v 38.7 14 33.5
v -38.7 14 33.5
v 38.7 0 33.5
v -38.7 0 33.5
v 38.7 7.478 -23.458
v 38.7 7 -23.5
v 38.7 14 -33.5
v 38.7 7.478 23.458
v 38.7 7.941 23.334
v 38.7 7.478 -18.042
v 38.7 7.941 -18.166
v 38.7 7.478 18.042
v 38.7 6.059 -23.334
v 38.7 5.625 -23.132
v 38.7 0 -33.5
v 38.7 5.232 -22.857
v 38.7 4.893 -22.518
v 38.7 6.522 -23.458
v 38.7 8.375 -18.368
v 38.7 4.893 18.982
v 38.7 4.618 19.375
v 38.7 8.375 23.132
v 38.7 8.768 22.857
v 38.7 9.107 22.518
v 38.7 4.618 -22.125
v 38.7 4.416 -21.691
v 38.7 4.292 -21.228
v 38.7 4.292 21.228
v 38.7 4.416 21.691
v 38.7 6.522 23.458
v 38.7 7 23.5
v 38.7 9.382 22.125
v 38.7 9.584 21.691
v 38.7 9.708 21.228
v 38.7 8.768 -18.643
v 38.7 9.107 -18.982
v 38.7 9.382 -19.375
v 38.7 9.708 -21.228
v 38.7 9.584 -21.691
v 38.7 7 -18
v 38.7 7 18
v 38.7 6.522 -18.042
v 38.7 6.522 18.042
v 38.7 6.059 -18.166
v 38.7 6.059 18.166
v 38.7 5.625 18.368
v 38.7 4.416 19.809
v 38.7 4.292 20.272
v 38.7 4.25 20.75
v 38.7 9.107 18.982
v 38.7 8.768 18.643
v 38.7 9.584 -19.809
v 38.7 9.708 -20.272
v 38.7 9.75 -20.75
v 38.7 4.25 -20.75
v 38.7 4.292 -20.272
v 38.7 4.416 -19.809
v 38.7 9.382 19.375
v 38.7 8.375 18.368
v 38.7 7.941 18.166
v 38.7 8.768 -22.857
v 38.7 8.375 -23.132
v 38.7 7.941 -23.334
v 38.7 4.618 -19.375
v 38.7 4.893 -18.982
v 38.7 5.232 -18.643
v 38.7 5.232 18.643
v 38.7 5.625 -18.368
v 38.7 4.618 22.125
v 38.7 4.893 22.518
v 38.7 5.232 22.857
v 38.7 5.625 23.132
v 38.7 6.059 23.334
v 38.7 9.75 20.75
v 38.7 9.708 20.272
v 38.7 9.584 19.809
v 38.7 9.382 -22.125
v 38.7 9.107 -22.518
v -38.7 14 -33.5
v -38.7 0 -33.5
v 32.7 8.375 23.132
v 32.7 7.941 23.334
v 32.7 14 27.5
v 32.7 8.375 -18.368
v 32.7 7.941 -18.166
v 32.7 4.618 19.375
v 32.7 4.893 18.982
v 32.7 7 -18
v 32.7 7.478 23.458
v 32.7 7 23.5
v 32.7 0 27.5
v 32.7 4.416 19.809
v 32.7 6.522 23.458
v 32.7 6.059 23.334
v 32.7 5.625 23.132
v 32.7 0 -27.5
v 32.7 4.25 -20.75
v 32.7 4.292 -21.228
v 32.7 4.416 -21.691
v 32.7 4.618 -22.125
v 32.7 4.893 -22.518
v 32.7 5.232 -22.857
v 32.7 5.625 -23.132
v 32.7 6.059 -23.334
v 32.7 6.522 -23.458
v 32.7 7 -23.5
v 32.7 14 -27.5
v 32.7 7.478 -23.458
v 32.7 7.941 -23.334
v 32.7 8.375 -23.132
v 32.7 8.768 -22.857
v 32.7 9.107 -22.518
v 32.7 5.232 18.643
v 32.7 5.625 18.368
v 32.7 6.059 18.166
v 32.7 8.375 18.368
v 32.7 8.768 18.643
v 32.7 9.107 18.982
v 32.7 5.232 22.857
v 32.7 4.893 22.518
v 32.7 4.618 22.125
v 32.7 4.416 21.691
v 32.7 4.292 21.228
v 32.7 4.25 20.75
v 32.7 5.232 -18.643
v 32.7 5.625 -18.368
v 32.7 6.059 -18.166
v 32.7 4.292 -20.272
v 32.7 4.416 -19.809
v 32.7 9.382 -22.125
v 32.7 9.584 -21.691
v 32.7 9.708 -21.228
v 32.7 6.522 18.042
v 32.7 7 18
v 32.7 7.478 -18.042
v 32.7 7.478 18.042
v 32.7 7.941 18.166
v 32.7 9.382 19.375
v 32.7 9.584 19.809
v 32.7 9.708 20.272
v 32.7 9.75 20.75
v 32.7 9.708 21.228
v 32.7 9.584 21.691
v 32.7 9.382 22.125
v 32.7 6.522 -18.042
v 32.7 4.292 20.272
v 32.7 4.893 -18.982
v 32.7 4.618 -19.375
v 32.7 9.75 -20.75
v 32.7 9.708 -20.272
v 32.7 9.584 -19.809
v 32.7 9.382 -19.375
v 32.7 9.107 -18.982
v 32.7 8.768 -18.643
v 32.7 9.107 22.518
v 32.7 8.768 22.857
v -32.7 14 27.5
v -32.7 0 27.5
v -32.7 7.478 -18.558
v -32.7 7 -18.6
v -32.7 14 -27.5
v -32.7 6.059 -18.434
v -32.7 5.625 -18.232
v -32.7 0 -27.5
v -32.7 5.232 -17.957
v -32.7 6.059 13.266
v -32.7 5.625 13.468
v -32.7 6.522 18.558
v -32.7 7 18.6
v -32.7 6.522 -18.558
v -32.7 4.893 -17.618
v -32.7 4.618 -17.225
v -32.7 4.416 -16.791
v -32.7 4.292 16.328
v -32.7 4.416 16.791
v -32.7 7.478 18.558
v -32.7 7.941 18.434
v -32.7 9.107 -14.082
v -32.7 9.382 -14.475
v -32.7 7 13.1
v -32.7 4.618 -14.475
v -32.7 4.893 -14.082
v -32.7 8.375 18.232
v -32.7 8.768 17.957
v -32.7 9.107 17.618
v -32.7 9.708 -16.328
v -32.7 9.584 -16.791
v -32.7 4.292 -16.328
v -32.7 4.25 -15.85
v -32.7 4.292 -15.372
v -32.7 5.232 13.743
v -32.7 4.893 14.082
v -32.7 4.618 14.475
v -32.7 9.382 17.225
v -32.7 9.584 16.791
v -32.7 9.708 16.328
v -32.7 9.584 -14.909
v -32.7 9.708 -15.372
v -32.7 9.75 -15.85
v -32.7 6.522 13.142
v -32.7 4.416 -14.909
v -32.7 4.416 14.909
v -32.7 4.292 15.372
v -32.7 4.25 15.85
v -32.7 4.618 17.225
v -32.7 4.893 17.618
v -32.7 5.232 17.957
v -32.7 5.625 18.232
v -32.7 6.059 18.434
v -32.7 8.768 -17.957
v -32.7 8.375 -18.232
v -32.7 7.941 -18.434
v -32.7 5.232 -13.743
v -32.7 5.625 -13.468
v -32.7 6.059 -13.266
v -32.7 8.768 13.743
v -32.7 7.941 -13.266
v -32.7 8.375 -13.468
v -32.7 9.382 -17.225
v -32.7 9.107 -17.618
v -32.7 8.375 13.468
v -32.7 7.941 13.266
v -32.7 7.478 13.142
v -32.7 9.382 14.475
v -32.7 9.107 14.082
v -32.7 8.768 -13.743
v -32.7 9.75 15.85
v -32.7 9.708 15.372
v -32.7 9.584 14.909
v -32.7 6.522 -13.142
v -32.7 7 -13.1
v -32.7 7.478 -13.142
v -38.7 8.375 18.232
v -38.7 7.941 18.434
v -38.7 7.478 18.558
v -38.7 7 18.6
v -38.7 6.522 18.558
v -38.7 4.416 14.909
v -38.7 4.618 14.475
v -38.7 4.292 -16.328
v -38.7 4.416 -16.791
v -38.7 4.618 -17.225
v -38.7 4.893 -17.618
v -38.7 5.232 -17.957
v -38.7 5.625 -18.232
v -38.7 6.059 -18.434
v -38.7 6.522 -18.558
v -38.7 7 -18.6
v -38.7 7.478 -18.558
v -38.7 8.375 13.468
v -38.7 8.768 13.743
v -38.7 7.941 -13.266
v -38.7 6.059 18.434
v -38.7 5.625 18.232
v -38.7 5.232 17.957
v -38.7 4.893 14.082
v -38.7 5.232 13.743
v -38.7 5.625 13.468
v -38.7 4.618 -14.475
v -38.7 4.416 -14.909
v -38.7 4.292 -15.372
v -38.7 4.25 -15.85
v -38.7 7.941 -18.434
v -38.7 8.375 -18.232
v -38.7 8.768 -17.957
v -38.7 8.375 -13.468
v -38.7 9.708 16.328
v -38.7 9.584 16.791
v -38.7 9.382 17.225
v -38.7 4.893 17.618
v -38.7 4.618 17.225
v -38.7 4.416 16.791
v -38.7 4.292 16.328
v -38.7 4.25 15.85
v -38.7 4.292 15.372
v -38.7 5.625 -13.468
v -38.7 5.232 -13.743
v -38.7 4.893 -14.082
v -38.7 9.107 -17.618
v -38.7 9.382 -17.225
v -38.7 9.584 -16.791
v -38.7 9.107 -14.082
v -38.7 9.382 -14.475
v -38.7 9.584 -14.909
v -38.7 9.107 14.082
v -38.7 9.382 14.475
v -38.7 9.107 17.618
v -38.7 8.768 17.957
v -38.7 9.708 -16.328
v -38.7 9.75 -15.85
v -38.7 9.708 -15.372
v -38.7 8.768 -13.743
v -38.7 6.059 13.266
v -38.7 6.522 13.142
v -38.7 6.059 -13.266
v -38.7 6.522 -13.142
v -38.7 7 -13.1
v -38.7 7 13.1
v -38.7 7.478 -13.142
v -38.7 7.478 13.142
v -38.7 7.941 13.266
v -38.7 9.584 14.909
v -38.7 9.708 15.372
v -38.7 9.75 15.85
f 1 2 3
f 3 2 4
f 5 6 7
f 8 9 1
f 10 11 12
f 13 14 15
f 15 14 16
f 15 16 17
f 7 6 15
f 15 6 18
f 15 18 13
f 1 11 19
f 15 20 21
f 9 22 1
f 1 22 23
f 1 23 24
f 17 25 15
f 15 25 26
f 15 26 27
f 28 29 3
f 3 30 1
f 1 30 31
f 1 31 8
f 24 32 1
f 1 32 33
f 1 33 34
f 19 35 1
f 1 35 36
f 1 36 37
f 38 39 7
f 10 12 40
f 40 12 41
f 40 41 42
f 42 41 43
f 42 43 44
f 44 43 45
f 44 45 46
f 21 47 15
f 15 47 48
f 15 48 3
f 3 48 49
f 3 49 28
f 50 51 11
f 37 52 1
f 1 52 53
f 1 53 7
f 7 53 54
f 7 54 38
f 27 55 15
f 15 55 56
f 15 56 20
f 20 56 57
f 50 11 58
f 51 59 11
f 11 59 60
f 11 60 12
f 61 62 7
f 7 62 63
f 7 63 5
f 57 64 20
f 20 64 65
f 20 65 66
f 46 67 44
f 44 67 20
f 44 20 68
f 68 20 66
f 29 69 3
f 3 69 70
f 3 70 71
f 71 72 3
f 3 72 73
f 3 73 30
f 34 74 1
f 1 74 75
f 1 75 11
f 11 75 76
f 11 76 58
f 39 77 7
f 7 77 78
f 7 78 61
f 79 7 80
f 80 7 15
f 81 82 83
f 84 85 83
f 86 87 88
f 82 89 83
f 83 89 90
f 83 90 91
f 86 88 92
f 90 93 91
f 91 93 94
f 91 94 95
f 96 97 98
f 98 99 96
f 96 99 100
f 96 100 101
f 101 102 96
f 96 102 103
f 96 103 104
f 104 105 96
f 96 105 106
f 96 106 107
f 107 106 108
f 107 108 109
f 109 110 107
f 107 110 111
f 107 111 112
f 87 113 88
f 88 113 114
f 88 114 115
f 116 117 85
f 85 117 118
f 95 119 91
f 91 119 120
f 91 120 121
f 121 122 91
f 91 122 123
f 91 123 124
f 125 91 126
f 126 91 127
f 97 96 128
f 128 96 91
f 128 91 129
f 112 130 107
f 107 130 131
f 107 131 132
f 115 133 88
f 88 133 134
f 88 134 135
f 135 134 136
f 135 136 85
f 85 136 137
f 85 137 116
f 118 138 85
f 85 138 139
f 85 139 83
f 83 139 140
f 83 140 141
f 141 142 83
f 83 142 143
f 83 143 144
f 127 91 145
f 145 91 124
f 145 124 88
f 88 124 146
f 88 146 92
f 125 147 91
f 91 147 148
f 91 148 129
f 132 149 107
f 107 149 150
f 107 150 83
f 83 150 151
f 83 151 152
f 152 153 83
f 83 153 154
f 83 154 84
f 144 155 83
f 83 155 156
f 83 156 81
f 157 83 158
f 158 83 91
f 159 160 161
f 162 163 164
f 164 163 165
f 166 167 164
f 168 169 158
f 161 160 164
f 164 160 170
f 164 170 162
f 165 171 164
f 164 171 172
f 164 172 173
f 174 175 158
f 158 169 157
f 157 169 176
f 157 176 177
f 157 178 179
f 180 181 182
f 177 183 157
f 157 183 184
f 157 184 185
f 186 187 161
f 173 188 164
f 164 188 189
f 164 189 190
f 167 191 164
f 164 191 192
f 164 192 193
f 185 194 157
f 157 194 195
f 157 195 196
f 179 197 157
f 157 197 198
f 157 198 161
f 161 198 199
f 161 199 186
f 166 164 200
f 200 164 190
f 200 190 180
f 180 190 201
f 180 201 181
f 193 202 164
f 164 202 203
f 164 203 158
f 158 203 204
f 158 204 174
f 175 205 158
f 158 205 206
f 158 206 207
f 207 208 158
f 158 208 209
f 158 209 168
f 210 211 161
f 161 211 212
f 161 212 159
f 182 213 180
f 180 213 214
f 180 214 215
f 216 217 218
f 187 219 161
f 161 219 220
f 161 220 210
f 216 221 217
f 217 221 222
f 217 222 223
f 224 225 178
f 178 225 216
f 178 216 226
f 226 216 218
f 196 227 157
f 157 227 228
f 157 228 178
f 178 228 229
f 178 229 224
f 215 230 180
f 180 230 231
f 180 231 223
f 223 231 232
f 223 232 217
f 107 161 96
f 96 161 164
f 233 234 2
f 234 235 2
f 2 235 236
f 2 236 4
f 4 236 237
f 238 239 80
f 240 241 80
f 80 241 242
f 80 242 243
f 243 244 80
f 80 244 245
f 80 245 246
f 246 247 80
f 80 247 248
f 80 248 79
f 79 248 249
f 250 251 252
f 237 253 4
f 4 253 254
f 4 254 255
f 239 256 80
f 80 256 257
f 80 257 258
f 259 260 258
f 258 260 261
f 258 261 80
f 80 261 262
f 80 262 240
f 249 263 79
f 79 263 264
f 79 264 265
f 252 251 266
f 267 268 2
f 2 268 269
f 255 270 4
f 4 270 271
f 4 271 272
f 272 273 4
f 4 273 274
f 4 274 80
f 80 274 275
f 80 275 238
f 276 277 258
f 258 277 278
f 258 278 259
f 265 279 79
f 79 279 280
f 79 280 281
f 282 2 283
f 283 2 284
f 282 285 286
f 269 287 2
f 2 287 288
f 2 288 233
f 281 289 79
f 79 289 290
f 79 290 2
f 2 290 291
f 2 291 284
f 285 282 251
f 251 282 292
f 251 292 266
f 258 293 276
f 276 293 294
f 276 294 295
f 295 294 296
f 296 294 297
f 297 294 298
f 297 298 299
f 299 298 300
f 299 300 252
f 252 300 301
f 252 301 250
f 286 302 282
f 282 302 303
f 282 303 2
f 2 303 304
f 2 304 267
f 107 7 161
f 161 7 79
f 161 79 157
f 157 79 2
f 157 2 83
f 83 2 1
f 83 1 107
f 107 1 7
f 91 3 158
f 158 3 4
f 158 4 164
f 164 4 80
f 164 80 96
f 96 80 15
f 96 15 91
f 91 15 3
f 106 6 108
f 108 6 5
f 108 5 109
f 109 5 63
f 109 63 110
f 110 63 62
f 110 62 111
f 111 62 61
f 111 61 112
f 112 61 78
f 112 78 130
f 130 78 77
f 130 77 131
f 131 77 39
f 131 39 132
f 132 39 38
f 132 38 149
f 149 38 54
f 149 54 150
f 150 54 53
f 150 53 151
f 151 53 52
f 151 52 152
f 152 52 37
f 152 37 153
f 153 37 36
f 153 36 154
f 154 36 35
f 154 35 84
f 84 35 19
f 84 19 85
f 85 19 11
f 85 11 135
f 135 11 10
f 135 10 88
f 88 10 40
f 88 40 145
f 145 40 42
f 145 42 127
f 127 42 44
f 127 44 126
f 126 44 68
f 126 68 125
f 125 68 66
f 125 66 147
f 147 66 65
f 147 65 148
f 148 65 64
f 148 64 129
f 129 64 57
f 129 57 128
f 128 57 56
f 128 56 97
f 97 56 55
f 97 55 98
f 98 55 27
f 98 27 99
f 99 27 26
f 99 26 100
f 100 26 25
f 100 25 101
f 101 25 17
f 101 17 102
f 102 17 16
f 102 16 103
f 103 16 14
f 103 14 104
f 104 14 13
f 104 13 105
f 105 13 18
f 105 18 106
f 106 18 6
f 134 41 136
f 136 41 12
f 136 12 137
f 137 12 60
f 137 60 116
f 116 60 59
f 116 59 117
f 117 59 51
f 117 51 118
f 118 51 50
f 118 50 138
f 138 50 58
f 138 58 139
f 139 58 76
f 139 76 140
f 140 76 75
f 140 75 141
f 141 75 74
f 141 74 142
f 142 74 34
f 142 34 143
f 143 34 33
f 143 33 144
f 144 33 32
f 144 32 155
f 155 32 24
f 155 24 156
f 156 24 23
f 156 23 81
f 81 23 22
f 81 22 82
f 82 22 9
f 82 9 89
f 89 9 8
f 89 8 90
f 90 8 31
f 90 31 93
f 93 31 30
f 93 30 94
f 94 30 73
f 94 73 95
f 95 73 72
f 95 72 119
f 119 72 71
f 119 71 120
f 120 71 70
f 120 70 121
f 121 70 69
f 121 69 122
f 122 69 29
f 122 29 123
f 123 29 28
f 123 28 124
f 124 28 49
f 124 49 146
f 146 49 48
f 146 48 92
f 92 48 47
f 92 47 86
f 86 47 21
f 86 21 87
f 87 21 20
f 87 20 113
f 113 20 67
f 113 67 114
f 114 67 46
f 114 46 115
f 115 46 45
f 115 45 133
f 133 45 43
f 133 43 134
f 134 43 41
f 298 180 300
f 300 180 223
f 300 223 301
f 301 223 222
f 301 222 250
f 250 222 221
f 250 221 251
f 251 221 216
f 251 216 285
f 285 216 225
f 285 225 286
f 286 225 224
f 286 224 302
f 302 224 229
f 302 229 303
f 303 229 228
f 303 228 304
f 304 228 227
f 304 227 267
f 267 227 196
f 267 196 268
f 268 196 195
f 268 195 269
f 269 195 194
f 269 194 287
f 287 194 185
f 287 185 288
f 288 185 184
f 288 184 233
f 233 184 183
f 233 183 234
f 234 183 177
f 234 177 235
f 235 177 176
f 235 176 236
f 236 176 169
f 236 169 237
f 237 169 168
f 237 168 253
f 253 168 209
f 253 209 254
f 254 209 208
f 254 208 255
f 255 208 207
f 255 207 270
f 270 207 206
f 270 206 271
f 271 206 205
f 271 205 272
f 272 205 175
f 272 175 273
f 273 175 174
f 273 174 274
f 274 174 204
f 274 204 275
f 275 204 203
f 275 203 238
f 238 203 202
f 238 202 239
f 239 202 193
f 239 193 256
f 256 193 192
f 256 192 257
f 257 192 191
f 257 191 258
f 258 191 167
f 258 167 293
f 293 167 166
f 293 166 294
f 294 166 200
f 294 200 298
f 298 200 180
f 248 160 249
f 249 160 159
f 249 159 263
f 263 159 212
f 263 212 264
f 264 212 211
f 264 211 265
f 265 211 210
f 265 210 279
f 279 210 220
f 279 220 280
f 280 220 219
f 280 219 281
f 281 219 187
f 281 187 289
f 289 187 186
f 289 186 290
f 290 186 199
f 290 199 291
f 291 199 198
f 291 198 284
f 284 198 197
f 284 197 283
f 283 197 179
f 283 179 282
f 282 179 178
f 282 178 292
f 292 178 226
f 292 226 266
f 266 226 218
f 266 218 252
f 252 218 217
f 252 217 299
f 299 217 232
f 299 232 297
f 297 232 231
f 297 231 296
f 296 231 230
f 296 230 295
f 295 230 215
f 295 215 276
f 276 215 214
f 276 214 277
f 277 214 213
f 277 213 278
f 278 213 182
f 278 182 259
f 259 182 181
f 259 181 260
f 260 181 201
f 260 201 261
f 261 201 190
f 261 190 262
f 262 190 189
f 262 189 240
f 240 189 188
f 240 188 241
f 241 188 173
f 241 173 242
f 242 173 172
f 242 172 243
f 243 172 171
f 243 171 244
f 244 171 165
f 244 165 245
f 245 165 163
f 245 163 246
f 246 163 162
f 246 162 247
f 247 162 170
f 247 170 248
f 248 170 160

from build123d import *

# Parameters (mm, degrees)
SKETCH1_W           = 77.4
SKETCH1_H           = 67
SKETCH1_W_2         = 65.4
SKETCH1_H_2         = 55
BOSS_EXTRUDE1_DEPTH = 14
SKETCH2_R           = 2.75
CUT_EXTRUDE1_DEPTH  = 6
SKETCH3_R           = 2.75
CUT_EXTRUDE2_DEPTH  = 6


with BuildPart() as part:
    # Sketch1 → Boss-Extrude1 (new body)
    with BuildSketch(Plane(origin=(0, 0, 0), x_dir=(1, 0, 0), z_dir=(0, 1, 0))):
        Rectangle(SKETCH1_W, SKETCH1_H)
        Rectangle(SKETCH1_W_2, SKETCH1_H_2, mode=Mode.SUBTRACT)
    extrude(amount=BOSS_EXTRUDE1_DEPTH)

    # Sketch2 → Cut-Extrude1 (cut)
    with BuildSketch(Plane(origin=(38.7, 0, 0), x_dir=(0, 0, -1), z_dir=(1, 0, 0))):
        with Locations((-20.75, 7)):
            Circle(SKETCH2_R)
        with Locations((20.75, 7)):
            Circle(SKETCH2_R)
    extrude(amount=-CUT_EXTRUDE1_DEPTH, mode=Mode.SUBTRACT)

    # Sketch3 → Cut-Extrude2 (cut)
    with BuildSketch(Plane(origin=(-32.7, 0, 0), x_dir=(0, 0, -1), z_dir=(1, 0, 0))):
        with Locations((15.85, 7)):
            Circle(SKETCH3_R)
        with Locations((-15.85, 7)):
            Circle(SKETCH3_R)
    extrude(amount=-CUT_EXTRUDE2_DEPTH, mode=Mode.SUBTRACT)


solid = part.part
